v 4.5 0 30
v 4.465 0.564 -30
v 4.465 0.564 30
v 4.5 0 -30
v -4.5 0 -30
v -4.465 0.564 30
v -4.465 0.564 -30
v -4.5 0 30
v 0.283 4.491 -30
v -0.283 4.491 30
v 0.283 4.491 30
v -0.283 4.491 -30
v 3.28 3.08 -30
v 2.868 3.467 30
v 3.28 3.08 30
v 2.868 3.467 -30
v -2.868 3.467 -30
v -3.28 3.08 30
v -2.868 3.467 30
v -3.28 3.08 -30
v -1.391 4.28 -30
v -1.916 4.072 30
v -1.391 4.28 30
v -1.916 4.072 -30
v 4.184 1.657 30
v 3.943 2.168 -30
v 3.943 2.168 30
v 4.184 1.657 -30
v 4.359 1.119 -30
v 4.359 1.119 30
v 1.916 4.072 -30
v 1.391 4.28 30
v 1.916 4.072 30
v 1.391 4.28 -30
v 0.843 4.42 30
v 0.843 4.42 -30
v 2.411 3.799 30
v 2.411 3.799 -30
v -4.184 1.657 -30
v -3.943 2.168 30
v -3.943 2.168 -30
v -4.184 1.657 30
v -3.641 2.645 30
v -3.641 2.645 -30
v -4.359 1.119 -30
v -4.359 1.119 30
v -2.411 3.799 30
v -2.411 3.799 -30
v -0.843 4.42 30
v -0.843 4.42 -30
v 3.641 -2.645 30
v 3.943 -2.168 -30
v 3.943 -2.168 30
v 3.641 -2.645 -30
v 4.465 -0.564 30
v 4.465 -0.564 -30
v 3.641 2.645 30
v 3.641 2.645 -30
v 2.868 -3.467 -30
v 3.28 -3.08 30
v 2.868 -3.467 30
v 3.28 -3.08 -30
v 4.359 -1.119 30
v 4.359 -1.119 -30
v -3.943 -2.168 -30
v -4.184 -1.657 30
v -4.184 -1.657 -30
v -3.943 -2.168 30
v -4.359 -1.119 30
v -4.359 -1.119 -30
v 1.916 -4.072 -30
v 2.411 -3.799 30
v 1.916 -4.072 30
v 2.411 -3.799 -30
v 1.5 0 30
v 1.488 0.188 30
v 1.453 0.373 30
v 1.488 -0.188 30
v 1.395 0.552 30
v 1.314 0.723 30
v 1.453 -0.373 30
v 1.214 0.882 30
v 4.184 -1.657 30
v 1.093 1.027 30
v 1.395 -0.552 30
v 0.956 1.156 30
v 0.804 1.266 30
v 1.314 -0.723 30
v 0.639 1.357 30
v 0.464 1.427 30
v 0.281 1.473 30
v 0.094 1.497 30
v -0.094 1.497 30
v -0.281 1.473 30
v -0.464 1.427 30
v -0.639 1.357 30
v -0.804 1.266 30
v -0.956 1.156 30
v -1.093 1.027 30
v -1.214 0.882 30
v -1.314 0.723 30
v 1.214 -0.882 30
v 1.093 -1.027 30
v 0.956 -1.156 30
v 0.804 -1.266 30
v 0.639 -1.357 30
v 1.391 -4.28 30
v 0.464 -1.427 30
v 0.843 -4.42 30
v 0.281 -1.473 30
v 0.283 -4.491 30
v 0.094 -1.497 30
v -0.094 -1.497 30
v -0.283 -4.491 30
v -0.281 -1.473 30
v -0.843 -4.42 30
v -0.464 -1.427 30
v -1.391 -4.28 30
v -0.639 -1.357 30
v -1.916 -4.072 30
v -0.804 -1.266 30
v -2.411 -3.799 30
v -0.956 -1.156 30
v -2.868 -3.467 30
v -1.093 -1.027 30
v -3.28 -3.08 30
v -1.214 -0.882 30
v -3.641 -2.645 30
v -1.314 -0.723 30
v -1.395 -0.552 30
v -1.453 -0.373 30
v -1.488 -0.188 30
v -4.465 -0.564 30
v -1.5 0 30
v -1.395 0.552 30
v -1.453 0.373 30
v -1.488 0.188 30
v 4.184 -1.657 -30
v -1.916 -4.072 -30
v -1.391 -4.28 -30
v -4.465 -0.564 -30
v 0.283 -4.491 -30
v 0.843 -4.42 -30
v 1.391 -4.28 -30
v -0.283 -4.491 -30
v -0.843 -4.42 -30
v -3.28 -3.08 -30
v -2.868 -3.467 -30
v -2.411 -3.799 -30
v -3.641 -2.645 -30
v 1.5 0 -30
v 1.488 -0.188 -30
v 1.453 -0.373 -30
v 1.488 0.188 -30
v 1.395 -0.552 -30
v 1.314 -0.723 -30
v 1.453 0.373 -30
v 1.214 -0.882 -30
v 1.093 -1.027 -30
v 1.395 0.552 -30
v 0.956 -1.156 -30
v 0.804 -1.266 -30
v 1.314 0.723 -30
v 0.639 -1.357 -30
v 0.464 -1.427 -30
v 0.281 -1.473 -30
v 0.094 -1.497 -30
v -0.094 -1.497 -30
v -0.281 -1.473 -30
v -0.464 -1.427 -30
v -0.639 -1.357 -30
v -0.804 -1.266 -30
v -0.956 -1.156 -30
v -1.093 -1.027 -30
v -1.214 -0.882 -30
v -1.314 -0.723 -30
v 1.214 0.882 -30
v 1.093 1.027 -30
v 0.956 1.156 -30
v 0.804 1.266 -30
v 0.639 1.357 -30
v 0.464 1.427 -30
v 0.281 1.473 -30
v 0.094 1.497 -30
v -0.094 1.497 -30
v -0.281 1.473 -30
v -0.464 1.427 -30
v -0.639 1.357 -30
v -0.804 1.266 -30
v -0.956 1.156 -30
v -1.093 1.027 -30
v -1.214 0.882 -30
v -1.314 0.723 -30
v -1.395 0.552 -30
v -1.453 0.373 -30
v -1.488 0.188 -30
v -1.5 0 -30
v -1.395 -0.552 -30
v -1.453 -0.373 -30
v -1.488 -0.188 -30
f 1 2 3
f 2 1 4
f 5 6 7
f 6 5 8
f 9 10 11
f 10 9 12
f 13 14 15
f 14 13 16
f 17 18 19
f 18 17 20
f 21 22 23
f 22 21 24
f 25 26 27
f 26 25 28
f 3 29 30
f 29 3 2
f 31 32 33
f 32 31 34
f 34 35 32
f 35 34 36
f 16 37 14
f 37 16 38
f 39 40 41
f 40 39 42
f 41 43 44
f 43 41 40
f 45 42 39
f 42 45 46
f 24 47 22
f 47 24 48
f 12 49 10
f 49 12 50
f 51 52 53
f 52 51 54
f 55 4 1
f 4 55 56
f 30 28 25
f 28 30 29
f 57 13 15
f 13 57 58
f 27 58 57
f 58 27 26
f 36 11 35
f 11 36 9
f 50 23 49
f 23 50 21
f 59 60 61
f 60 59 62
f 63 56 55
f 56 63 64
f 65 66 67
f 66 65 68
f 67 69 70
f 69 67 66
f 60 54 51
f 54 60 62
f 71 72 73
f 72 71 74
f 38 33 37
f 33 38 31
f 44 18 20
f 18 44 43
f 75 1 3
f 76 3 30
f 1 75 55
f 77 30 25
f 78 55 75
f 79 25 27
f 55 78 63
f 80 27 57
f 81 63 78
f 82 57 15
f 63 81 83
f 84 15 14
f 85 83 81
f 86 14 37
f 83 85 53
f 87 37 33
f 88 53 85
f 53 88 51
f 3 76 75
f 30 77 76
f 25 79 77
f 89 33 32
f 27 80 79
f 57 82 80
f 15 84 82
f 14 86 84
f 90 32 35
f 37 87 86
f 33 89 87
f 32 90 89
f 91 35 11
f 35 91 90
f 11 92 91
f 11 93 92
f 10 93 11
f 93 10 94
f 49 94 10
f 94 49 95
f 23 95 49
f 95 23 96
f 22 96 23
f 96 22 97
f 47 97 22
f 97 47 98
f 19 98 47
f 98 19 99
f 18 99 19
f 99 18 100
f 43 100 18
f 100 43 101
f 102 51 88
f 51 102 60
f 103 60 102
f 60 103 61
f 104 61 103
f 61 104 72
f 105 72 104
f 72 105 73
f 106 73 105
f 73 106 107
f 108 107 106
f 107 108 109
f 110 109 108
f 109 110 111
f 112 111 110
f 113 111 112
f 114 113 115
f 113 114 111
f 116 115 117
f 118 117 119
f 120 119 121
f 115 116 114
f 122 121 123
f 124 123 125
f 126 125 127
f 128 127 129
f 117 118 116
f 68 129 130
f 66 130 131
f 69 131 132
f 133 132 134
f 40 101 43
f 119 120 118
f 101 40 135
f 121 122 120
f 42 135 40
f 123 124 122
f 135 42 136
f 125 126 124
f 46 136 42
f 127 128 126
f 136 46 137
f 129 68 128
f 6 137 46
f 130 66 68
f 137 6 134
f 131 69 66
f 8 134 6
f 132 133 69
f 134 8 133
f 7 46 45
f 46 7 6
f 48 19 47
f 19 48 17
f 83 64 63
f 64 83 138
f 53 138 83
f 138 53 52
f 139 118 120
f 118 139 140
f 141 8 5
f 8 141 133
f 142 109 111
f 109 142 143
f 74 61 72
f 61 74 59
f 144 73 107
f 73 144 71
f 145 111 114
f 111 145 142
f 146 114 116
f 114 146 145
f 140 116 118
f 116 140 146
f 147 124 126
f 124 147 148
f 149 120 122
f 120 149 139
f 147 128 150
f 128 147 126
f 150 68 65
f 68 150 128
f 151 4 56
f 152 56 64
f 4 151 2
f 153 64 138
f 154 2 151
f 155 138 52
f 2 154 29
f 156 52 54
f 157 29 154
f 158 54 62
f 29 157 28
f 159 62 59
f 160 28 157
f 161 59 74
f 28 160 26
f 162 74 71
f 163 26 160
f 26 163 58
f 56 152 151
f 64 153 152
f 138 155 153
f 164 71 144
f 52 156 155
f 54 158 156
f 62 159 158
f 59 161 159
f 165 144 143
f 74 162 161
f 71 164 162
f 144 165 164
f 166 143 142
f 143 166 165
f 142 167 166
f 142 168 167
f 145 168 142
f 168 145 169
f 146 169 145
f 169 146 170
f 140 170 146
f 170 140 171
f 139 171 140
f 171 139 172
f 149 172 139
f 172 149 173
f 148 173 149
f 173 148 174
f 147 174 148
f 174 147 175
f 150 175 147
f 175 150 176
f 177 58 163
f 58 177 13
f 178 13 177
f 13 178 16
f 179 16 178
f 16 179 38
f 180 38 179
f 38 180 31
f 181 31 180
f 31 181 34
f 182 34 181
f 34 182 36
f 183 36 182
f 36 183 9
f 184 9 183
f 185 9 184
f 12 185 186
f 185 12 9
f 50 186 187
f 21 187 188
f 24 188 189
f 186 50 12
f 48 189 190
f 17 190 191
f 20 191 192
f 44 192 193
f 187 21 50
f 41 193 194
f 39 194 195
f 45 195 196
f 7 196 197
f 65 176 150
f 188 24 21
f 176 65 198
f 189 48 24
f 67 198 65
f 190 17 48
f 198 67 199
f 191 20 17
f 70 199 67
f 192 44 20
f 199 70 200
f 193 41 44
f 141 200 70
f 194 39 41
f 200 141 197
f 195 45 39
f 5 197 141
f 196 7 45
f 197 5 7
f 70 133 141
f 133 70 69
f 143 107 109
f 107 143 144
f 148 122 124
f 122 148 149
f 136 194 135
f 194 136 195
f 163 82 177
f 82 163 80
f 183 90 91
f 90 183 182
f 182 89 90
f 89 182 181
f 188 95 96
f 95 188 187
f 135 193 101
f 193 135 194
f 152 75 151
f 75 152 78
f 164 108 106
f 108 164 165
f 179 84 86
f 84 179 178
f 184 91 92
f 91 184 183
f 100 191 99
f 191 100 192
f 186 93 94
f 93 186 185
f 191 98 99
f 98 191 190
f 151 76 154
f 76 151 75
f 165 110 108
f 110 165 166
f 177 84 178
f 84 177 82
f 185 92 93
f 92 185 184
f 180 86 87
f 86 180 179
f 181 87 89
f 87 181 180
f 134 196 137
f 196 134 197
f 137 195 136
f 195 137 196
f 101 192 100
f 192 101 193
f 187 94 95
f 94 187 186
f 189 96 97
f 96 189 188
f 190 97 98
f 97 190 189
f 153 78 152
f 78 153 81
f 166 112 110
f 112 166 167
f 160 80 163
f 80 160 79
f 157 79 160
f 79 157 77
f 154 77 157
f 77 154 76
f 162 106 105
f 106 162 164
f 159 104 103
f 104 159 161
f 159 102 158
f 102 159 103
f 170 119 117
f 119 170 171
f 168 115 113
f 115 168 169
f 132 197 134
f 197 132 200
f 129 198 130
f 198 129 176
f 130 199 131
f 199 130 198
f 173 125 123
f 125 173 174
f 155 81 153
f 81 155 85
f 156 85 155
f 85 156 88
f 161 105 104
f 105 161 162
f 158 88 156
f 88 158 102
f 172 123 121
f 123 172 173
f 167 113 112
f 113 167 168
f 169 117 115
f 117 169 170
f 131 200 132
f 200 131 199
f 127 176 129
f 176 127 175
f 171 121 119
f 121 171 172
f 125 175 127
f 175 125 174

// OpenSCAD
$fn = 50;


difference() {
	union() {
		translate(v = [0, 0, -30.0000000000]) {
			cylinder(h = 60, r = 4.5000000000);
		}
	}
	union() {
		translate(v = [0, 0, -100.0000000000]) {
			cylinder(h = 200, r = 1.5000000000);
		}
	}
}
